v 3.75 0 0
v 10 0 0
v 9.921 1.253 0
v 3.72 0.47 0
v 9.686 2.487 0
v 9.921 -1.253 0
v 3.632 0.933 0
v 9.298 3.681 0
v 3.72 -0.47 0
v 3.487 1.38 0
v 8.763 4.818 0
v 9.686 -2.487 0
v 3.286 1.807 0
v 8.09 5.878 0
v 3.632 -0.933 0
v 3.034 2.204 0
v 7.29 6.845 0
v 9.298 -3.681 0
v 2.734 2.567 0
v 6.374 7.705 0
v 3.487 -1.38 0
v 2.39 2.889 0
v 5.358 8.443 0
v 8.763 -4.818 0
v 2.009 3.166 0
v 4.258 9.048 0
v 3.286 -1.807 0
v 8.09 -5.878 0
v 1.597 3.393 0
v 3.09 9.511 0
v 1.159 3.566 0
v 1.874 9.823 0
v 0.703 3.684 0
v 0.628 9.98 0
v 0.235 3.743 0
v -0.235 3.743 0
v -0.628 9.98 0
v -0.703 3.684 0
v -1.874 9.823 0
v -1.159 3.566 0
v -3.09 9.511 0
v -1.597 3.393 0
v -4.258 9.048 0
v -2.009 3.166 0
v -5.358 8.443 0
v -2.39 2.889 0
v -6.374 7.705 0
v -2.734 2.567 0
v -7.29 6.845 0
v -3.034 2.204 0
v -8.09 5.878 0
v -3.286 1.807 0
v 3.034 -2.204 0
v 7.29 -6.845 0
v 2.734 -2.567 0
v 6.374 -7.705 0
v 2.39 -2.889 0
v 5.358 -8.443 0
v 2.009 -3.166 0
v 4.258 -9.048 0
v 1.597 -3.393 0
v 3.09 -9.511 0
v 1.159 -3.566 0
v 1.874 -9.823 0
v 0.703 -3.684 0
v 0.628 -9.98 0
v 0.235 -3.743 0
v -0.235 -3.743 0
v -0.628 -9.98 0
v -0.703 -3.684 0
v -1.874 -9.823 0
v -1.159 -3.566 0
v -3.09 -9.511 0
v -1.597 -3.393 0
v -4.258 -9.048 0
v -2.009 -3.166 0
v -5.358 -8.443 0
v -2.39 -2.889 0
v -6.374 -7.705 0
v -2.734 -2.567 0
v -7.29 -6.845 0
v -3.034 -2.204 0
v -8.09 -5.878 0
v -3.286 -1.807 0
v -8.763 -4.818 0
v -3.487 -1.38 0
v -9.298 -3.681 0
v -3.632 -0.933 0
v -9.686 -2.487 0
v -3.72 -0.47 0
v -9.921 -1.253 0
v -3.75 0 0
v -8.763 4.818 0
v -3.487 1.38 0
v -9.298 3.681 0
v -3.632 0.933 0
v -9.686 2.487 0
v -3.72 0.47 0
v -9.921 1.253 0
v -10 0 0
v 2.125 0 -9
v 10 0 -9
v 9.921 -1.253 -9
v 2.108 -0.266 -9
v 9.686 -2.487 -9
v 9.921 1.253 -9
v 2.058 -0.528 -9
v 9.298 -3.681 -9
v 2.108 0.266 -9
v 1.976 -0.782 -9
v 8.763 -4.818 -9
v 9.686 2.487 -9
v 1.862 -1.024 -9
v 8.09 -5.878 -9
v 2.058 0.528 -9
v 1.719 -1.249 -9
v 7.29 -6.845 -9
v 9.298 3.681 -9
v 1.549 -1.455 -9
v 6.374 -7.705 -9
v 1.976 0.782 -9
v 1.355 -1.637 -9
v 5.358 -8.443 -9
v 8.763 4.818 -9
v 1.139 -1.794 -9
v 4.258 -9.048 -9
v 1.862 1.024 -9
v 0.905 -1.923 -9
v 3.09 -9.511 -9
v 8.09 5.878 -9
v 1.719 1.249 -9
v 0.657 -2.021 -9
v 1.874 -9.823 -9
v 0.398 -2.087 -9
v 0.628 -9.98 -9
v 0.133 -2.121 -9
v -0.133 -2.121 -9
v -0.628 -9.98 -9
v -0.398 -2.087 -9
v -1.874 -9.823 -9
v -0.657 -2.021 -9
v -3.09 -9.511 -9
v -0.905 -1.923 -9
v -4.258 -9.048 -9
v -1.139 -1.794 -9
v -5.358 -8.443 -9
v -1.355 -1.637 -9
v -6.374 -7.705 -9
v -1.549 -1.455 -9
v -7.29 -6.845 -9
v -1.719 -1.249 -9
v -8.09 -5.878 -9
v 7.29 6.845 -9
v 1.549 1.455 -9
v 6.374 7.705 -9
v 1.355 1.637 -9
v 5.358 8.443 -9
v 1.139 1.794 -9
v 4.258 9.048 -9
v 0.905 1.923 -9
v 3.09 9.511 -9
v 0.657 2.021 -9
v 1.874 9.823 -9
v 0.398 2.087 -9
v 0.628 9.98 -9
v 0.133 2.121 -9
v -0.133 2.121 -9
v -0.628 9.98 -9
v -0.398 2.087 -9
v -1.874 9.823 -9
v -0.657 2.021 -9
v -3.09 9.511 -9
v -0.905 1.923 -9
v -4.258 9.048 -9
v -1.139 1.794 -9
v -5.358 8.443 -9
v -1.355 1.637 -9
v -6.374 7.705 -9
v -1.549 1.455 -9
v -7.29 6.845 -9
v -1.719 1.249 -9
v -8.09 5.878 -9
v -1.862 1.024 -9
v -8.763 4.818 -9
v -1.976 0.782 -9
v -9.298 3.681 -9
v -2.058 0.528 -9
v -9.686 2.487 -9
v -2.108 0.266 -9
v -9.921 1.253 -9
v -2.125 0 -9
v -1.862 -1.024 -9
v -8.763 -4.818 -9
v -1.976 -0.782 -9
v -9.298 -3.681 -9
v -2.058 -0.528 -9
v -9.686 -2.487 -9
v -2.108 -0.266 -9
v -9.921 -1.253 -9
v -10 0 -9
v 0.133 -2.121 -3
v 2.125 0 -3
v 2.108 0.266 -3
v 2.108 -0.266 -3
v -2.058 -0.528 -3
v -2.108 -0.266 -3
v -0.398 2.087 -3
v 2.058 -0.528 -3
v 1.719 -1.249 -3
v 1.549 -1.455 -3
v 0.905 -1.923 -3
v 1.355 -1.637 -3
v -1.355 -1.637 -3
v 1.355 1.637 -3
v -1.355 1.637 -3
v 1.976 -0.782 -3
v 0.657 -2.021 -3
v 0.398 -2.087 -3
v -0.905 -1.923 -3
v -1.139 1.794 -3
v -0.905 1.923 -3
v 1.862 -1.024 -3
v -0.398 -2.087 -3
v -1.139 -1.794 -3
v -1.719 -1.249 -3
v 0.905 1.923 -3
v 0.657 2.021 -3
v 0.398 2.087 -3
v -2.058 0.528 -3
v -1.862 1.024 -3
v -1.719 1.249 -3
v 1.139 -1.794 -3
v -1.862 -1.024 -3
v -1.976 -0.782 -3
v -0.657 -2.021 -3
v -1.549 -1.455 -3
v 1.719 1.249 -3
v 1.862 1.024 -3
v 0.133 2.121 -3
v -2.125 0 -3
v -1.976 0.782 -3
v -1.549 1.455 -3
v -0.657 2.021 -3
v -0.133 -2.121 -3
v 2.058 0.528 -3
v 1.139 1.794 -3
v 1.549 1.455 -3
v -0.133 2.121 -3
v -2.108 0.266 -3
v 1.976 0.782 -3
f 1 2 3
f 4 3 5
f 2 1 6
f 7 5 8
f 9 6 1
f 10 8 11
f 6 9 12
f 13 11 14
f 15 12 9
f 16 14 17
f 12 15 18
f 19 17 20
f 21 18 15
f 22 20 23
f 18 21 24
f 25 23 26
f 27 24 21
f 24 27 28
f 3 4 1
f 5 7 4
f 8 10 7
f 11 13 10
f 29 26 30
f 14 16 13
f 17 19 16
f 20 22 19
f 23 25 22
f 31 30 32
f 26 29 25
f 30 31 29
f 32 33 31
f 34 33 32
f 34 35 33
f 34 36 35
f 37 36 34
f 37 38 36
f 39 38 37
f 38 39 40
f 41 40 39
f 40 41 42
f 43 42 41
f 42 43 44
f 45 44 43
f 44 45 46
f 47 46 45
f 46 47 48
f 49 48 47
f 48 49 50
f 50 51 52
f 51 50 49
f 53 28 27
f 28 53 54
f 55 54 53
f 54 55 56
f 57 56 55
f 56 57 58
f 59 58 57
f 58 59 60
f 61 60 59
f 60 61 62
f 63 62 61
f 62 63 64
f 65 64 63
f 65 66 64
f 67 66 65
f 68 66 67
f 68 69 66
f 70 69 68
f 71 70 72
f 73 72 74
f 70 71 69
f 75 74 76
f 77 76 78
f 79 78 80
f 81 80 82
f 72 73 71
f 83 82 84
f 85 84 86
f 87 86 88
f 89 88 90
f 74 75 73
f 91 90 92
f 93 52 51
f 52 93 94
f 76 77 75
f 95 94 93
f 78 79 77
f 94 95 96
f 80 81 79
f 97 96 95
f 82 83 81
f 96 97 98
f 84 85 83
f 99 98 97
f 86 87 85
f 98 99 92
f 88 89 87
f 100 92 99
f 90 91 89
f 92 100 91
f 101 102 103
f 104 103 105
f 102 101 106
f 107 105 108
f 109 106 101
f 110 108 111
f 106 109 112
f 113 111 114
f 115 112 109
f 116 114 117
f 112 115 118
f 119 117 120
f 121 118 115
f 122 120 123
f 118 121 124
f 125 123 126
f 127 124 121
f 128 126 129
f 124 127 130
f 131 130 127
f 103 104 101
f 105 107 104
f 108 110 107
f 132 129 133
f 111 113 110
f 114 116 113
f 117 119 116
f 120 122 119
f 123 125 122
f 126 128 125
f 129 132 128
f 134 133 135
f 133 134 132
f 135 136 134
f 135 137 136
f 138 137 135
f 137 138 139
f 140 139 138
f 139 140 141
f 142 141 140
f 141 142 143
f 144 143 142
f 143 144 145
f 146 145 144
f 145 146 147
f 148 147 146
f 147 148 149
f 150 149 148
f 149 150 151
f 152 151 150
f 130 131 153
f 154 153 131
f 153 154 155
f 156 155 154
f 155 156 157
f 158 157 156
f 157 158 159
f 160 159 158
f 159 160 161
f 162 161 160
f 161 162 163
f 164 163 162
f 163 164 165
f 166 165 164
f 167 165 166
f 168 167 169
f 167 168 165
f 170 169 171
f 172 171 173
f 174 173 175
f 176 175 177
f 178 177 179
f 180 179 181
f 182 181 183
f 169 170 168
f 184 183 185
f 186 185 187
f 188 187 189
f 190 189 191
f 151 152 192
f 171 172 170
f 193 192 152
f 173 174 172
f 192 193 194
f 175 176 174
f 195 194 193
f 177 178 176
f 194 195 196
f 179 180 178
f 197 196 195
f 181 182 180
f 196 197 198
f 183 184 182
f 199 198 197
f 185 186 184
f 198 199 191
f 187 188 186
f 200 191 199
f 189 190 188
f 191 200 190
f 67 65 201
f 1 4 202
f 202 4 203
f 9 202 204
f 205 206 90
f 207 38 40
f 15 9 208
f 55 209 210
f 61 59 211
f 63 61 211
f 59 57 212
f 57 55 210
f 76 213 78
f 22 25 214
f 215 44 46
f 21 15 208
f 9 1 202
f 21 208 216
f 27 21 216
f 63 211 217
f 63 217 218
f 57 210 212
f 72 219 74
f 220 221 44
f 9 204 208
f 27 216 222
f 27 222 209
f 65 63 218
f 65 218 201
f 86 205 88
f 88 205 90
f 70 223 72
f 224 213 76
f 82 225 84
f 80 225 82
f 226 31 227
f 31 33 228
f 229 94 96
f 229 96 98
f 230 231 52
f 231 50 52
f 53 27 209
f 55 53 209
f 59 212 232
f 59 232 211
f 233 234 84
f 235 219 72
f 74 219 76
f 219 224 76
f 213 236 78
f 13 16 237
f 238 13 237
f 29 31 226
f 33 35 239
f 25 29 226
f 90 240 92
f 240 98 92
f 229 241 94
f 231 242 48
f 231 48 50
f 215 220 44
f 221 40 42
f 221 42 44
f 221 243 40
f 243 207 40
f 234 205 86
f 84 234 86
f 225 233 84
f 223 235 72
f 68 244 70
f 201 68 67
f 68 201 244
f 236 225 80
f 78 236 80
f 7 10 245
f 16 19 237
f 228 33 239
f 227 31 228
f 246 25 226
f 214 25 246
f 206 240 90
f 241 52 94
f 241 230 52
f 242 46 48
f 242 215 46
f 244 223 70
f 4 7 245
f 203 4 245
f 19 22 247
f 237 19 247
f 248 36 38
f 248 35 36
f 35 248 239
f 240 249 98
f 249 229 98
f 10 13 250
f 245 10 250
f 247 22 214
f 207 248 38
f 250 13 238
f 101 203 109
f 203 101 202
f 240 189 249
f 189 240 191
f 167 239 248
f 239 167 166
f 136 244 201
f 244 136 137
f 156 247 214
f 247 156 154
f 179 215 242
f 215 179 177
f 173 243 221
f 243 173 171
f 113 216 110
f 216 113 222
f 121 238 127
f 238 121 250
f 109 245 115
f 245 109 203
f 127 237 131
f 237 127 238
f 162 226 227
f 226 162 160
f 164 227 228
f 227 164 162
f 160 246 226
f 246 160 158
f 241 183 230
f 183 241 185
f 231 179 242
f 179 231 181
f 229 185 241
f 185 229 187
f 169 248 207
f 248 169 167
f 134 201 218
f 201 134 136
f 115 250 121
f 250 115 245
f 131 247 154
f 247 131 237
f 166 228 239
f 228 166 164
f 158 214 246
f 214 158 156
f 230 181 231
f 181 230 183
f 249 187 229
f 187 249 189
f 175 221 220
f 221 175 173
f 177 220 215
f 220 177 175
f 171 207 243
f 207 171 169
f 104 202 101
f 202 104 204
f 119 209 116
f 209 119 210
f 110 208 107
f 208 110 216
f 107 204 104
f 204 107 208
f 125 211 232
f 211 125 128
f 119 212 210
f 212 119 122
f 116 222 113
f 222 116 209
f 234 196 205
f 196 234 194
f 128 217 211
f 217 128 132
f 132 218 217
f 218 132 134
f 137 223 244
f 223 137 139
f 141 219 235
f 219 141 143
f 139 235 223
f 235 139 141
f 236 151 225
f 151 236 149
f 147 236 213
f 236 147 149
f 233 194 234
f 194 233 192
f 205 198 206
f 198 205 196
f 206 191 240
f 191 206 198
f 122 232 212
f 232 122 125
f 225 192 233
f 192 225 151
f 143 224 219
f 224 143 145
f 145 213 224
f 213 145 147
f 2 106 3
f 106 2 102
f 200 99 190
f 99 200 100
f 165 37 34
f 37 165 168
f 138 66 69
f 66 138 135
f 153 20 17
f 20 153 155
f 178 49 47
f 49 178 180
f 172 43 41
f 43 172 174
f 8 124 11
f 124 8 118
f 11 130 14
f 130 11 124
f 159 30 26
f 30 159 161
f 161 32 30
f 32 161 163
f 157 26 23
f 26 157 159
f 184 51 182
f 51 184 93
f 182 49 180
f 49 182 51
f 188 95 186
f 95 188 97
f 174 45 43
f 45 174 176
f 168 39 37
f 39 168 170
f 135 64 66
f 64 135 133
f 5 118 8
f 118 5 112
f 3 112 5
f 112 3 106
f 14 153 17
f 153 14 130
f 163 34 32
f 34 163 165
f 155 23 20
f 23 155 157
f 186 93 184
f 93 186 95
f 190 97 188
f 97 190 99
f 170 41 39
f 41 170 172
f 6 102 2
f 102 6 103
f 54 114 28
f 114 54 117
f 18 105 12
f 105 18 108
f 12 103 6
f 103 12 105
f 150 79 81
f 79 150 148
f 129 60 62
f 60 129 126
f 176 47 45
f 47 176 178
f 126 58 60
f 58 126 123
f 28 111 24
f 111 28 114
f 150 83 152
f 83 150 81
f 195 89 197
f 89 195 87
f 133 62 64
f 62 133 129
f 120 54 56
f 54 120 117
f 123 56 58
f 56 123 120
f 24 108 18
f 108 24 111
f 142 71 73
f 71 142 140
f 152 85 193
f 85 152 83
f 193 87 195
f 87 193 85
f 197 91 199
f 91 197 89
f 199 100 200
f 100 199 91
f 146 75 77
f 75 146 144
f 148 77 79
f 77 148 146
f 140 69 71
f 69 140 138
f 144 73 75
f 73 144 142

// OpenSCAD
$fn = 50;


difference() {
	union() {
		translate(v = [0, 0, -9.0000000000]) {
			cylinder(h = 9, r = 10.0000000000);
		}
	}
	union() {
		translate(v = [0, 0, 0]) {
			rotate(a = [0, 0, 0]) {
				difference() {
					union() {
						#translate(v = [0, 0, -9.0000000000]) {
							cylinder(h = 9, r = 2.0000000000);
						}
						#translate(v = [0, 0, -3]) {
							cylinder(h = 3, r = 10.0000000000, r1 = 2.1250000000, r2 = 3.7500000000);
						}
						#translate(v = [0, 0, -9.0000000000]) {
							cylinder(h = 9, r = 2.1250000000);
						}
						#translate(v = [0, 0, -9.0000000000]) {
							cylinder(h = 9, r = 2.0000000000);
						}
					}
					union();
				}
			}
		}
	}
}
